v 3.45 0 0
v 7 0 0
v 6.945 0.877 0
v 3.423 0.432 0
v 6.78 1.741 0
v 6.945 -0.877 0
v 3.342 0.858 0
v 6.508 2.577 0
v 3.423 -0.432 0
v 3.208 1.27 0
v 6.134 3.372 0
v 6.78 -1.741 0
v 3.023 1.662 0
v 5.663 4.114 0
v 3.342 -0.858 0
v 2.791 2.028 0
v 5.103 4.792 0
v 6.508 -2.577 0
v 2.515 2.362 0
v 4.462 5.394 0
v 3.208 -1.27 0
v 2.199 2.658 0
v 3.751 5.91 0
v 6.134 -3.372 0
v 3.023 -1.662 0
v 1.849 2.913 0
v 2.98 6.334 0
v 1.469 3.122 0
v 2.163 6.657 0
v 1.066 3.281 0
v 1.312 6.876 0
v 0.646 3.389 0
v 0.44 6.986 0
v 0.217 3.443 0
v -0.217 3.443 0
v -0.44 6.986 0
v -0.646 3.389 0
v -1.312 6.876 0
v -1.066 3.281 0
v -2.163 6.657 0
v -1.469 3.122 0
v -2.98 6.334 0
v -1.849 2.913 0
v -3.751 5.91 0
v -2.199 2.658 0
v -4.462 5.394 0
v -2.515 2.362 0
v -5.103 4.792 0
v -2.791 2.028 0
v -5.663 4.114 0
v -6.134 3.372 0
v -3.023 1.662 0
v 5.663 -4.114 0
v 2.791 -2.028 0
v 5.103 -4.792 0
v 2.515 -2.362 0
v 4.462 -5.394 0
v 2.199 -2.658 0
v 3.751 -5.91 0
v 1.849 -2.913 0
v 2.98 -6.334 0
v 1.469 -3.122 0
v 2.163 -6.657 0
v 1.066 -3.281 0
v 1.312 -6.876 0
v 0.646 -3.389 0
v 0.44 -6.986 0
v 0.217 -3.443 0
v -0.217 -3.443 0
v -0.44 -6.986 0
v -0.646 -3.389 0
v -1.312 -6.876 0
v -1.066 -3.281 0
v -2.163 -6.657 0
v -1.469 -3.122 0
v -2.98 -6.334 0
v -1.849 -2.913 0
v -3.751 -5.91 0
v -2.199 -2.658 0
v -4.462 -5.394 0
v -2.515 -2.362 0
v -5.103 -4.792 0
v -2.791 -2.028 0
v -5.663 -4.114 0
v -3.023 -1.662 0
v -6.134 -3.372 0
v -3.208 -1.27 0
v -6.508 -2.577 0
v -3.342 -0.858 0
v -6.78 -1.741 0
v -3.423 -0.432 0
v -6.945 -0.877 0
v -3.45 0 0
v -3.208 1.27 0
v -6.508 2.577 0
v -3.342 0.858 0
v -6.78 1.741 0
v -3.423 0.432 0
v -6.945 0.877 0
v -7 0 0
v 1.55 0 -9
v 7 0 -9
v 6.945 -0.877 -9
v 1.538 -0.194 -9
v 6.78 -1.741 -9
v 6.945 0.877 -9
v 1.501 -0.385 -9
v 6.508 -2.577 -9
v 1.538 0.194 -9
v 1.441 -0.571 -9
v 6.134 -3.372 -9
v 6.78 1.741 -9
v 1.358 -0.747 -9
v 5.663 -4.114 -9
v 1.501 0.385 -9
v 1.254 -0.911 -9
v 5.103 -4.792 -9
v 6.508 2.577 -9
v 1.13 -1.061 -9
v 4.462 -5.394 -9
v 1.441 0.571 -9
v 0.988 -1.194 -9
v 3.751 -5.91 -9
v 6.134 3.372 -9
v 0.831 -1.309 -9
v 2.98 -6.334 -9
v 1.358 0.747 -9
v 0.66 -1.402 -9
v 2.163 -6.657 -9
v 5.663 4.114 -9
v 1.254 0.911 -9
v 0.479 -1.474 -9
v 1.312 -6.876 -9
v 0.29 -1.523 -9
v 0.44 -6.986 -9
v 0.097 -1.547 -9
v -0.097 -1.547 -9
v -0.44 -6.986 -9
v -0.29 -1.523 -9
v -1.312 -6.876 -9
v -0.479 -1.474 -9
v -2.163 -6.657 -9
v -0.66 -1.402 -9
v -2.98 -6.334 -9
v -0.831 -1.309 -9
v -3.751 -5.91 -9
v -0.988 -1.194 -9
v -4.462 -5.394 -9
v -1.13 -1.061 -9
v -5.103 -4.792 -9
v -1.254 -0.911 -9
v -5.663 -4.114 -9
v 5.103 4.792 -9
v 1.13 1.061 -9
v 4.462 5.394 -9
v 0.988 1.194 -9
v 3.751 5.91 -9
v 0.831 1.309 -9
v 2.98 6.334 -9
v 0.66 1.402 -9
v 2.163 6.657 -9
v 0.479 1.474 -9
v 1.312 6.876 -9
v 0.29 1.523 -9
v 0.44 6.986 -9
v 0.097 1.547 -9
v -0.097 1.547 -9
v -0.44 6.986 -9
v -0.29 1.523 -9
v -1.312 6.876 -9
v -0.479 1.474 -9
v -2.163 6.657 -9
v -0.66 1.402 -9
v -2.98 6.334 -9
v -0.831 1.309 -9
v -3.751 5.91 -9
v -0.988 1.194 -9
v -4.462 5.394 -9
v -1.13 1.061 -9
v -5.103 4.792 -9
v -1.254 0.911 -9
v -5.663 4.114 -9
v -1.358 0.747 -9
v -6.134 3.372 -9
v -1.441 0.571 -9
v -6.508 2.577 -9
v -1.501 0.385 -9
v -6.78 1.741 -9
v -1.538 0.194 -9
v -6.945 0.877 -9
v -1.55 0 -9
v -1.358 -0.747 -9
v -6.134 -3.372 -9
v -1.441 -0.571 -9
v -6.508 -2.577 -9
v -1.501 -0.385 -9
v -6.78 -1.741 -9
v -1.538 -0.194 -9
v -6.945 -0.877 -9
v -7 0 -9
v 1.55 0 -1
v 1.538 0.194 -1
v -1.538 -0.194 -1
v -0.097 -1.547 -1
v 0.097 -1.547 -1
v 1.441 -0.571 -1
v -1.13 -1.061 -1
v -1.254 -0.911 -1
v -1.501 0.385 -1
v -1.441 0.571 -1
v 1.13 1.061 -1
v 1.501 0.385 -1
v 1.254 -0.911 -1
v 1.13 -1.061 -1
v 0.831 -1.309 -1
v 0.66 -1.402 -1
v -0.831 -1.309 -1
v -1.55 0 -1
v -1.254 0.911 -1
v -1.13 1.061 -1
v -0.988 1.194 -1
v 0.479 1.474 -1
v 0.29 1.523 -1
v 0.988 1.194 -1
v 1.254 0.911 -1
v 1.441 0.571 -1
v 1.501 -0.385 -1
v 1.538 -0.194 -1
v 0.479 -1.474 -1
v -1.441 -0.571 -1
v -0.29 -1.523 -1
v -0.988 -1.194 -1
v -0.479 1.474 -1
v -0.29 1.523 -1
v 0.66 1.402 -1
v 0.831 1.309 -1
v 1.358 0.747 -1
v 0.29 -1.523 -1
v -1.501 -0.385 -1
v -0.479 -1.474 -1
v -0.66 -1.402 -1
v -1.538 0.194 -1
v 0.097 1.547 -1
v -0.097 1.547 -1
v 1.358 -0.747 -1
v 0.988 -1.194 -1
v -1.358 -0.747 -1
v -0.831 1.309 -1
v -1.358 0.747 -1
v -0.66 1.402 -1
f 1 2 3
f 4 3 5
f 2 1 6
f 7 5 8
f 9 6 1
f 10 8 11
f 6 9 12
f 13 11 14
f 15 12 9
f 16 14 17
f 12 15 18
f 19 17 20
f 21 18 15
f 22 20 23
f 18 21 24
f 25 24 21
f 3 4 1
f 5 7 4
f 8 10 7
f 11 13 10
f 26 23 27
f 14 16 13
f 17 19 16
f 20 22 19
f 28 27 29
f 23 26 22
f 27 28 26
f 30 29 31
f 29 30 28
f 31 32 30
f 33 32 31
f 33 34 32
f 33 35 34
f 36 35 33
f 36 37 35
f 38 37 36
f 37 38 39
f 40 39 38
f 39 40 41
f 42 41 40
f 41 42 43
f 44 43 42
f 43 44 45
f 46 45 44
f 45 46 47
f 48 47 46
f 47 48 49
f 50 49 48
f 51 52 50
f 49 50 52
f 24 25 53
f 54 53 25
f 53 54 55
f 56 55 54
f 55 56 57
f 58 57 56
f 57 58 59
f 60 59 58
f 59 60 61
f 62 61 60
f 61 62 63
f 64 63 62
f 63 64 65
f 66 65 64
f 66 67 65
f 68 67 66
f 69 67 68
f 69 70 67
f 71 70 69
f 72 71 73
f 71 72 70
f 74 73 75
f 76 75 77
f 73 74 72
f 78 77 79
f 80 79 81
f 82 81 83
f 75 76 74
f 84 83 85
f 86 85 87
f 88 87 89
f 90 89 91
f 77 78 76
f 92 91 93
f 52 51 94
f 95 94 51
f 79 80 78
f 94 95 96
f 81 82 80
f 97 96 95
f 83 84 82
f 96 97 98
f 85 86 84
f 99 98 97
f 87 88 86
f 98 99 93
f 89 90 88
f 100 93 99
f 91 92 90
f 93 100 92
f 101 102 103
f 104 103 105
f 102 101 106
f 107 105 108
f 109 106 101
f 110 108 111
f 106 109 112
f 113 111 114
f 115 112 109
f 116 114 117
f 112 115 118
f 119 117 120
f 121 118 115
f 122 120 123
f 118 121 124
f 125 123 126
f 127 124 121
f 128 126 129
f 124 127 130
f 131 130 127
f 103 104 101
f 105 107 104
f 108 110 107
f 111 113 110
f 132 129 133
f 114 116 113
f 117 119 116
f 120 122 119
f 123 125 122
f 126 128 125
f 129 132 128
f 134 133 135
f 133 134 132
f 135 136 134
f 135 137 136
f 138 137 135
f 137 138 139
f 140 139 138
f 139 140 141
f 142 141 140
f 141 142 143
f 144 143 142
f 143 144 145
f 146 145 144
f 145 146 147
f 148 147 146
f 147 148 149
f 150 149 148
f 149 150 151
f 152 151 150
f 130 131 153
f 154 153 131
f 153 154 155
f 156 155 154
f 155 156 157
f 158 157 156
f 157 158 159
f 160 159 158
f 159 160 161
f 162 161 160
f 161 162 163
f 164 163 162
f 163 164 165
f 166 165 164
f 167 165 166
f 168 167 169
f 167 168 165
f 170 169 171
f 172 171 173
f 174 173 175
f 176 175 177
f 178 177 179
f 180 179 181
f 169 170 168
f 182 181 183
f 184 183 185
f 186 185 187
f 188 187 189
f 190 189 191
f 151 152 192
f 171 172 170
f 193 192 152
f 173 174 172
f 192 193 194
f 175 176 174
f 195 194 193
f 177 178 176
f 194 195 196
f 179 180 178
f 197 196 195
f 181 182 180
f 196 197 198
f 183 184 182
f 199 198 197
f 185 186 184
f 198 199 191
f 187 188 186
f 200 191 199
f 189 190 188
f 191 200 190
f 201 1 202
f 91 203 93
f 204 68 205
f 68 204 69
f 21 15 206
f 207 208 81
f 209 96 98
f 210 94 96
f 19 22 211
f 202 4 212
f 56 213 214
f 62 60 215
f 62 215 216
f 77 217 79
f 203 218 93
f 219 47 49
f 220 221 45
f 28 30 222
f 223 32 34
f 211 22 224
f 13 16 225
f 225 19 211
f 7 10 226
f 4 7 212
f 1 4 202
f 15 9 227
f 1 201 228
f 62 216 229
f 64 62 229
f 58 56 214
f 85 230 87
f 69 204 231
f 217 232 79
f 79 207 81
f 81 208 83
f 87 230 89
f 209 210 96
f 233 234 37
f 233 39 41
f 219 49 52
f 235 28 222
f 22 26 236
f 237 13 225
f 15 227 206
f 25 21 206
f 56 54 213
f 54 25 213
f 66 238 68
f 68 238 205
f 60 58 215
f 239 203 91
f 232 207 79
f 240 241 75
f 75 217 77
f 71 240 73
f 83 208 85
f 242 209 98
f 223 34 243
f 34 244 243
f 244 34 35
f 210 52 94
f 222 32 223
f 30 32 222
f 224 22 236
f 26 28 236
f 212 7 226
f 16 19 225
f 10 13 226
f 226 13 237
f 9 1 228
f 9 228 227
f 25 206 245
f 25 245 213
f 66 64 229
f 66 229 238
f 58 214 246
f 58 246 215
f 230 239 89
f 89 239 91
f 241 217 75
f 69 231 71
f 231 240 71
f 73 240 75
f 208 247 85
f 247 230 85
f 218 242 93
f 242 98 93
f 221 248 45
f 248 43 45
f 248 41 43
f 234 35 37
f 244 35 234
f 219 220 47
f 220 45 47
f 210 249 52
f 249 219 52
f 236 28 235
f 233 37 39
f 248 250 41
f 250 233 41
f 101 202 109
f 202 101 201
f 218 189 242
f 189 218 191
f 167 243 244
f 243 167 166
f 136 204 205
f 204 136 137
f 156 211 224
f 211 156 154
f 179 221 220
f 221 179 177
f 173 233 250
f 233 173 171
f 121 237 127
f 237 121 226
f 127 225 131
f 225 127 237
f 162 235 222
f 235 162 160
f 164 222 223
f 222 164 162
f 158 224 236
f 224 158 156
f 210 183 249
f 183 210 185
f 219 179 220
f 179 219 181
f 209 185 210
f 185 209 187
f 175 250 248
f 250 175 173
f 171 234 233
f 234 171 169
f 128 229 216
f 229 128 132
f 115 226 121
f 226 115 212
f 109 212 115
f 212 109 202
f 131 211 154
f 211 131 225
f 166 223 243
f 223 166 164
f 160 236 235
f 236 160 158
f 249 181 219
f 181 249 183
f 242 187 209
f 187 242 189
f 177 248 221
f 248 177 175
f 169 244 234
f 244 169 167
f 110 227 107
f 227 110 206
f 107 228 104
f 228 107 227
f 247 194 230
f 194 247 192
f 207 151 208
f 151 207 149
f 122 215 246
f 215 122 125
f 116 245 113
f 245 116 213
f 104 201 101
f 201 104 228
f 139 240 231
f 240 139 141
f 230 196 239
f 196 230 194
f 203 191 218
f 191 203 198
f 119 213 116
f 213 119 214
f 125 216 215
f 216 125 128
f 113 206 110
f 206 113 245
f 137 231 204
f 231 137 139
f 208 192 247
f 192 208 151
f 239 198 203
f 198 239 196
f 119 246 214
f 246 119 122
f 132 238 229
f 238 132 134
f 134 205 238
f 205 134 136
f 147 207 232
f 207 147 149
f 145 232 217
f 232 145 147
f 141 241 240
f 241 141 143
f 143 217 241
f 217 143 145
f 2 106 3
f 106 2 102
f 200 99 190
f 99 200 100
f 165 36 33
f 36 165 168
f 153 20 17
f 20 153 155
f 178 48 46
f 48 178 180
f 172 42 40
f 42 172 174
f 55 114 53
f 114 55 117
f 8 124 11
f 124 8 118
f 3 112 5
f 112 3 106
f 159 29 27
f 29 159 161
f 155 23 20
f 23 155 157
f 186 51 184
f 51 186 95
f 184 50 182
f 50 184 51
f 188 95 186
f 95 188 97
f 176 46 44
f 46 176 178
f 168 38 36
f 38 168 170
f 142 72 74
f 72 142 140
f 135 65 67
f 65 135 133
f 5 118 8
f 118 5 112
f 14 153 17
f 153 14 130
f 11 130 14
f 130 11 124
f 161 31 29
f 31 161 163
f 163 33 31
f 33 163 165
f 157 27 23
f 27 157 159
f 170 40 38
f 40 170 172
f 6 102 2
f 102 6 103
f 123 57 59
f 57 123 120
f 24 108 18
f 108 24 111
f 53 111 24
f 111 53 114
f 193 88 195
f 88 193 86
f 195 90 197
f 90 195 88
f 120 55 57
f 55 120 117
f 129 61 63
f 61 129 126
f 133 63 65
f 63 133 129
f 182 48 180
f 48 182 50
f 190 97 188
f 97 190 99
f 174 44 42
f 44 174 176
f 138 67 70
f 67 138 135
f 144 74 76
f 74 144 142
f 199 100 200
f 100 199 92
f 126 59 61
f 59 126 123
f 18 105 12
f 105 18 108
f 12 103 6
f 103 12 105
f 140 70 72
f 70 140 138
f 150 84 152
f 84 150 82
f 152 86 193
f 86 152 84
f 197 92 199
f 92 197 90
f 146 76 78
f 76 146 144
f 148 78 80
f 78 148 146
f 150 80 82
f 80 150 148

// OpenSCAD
$fn = 50;


difference() {
	union() {
		translate(v = [0, 0, -9.0000000000]) {
			cylinder(h = 9, r = 7.0000000000);
		}
	}
	union() {
		translate(v = [0, 0, 0]) {
			rotate(a = [0, 0, 0]) {
				difference() {
					union() {
						translate(v = [0, 0, -9.0000000000]) {
							cylinder(h = 9, r = 1.2500000000);
						}
						translate(v = [0, 0, -1.0000000000]) {
							cylinder(h = 1.0000000000, r1 = 1.5500000000, r2 = 3.4500000000);
						}
						translate(v = [0, 0, -9.0000000000]) {
							cylinder(h = 9, r = 1.5500000000);
						}
						translate(v = [0, 0, -9.0000000000]) {
							cylinder(h = 9, r = 1.2500000000);
						}
					}
					union();
				}
			}
		}
	}
}
